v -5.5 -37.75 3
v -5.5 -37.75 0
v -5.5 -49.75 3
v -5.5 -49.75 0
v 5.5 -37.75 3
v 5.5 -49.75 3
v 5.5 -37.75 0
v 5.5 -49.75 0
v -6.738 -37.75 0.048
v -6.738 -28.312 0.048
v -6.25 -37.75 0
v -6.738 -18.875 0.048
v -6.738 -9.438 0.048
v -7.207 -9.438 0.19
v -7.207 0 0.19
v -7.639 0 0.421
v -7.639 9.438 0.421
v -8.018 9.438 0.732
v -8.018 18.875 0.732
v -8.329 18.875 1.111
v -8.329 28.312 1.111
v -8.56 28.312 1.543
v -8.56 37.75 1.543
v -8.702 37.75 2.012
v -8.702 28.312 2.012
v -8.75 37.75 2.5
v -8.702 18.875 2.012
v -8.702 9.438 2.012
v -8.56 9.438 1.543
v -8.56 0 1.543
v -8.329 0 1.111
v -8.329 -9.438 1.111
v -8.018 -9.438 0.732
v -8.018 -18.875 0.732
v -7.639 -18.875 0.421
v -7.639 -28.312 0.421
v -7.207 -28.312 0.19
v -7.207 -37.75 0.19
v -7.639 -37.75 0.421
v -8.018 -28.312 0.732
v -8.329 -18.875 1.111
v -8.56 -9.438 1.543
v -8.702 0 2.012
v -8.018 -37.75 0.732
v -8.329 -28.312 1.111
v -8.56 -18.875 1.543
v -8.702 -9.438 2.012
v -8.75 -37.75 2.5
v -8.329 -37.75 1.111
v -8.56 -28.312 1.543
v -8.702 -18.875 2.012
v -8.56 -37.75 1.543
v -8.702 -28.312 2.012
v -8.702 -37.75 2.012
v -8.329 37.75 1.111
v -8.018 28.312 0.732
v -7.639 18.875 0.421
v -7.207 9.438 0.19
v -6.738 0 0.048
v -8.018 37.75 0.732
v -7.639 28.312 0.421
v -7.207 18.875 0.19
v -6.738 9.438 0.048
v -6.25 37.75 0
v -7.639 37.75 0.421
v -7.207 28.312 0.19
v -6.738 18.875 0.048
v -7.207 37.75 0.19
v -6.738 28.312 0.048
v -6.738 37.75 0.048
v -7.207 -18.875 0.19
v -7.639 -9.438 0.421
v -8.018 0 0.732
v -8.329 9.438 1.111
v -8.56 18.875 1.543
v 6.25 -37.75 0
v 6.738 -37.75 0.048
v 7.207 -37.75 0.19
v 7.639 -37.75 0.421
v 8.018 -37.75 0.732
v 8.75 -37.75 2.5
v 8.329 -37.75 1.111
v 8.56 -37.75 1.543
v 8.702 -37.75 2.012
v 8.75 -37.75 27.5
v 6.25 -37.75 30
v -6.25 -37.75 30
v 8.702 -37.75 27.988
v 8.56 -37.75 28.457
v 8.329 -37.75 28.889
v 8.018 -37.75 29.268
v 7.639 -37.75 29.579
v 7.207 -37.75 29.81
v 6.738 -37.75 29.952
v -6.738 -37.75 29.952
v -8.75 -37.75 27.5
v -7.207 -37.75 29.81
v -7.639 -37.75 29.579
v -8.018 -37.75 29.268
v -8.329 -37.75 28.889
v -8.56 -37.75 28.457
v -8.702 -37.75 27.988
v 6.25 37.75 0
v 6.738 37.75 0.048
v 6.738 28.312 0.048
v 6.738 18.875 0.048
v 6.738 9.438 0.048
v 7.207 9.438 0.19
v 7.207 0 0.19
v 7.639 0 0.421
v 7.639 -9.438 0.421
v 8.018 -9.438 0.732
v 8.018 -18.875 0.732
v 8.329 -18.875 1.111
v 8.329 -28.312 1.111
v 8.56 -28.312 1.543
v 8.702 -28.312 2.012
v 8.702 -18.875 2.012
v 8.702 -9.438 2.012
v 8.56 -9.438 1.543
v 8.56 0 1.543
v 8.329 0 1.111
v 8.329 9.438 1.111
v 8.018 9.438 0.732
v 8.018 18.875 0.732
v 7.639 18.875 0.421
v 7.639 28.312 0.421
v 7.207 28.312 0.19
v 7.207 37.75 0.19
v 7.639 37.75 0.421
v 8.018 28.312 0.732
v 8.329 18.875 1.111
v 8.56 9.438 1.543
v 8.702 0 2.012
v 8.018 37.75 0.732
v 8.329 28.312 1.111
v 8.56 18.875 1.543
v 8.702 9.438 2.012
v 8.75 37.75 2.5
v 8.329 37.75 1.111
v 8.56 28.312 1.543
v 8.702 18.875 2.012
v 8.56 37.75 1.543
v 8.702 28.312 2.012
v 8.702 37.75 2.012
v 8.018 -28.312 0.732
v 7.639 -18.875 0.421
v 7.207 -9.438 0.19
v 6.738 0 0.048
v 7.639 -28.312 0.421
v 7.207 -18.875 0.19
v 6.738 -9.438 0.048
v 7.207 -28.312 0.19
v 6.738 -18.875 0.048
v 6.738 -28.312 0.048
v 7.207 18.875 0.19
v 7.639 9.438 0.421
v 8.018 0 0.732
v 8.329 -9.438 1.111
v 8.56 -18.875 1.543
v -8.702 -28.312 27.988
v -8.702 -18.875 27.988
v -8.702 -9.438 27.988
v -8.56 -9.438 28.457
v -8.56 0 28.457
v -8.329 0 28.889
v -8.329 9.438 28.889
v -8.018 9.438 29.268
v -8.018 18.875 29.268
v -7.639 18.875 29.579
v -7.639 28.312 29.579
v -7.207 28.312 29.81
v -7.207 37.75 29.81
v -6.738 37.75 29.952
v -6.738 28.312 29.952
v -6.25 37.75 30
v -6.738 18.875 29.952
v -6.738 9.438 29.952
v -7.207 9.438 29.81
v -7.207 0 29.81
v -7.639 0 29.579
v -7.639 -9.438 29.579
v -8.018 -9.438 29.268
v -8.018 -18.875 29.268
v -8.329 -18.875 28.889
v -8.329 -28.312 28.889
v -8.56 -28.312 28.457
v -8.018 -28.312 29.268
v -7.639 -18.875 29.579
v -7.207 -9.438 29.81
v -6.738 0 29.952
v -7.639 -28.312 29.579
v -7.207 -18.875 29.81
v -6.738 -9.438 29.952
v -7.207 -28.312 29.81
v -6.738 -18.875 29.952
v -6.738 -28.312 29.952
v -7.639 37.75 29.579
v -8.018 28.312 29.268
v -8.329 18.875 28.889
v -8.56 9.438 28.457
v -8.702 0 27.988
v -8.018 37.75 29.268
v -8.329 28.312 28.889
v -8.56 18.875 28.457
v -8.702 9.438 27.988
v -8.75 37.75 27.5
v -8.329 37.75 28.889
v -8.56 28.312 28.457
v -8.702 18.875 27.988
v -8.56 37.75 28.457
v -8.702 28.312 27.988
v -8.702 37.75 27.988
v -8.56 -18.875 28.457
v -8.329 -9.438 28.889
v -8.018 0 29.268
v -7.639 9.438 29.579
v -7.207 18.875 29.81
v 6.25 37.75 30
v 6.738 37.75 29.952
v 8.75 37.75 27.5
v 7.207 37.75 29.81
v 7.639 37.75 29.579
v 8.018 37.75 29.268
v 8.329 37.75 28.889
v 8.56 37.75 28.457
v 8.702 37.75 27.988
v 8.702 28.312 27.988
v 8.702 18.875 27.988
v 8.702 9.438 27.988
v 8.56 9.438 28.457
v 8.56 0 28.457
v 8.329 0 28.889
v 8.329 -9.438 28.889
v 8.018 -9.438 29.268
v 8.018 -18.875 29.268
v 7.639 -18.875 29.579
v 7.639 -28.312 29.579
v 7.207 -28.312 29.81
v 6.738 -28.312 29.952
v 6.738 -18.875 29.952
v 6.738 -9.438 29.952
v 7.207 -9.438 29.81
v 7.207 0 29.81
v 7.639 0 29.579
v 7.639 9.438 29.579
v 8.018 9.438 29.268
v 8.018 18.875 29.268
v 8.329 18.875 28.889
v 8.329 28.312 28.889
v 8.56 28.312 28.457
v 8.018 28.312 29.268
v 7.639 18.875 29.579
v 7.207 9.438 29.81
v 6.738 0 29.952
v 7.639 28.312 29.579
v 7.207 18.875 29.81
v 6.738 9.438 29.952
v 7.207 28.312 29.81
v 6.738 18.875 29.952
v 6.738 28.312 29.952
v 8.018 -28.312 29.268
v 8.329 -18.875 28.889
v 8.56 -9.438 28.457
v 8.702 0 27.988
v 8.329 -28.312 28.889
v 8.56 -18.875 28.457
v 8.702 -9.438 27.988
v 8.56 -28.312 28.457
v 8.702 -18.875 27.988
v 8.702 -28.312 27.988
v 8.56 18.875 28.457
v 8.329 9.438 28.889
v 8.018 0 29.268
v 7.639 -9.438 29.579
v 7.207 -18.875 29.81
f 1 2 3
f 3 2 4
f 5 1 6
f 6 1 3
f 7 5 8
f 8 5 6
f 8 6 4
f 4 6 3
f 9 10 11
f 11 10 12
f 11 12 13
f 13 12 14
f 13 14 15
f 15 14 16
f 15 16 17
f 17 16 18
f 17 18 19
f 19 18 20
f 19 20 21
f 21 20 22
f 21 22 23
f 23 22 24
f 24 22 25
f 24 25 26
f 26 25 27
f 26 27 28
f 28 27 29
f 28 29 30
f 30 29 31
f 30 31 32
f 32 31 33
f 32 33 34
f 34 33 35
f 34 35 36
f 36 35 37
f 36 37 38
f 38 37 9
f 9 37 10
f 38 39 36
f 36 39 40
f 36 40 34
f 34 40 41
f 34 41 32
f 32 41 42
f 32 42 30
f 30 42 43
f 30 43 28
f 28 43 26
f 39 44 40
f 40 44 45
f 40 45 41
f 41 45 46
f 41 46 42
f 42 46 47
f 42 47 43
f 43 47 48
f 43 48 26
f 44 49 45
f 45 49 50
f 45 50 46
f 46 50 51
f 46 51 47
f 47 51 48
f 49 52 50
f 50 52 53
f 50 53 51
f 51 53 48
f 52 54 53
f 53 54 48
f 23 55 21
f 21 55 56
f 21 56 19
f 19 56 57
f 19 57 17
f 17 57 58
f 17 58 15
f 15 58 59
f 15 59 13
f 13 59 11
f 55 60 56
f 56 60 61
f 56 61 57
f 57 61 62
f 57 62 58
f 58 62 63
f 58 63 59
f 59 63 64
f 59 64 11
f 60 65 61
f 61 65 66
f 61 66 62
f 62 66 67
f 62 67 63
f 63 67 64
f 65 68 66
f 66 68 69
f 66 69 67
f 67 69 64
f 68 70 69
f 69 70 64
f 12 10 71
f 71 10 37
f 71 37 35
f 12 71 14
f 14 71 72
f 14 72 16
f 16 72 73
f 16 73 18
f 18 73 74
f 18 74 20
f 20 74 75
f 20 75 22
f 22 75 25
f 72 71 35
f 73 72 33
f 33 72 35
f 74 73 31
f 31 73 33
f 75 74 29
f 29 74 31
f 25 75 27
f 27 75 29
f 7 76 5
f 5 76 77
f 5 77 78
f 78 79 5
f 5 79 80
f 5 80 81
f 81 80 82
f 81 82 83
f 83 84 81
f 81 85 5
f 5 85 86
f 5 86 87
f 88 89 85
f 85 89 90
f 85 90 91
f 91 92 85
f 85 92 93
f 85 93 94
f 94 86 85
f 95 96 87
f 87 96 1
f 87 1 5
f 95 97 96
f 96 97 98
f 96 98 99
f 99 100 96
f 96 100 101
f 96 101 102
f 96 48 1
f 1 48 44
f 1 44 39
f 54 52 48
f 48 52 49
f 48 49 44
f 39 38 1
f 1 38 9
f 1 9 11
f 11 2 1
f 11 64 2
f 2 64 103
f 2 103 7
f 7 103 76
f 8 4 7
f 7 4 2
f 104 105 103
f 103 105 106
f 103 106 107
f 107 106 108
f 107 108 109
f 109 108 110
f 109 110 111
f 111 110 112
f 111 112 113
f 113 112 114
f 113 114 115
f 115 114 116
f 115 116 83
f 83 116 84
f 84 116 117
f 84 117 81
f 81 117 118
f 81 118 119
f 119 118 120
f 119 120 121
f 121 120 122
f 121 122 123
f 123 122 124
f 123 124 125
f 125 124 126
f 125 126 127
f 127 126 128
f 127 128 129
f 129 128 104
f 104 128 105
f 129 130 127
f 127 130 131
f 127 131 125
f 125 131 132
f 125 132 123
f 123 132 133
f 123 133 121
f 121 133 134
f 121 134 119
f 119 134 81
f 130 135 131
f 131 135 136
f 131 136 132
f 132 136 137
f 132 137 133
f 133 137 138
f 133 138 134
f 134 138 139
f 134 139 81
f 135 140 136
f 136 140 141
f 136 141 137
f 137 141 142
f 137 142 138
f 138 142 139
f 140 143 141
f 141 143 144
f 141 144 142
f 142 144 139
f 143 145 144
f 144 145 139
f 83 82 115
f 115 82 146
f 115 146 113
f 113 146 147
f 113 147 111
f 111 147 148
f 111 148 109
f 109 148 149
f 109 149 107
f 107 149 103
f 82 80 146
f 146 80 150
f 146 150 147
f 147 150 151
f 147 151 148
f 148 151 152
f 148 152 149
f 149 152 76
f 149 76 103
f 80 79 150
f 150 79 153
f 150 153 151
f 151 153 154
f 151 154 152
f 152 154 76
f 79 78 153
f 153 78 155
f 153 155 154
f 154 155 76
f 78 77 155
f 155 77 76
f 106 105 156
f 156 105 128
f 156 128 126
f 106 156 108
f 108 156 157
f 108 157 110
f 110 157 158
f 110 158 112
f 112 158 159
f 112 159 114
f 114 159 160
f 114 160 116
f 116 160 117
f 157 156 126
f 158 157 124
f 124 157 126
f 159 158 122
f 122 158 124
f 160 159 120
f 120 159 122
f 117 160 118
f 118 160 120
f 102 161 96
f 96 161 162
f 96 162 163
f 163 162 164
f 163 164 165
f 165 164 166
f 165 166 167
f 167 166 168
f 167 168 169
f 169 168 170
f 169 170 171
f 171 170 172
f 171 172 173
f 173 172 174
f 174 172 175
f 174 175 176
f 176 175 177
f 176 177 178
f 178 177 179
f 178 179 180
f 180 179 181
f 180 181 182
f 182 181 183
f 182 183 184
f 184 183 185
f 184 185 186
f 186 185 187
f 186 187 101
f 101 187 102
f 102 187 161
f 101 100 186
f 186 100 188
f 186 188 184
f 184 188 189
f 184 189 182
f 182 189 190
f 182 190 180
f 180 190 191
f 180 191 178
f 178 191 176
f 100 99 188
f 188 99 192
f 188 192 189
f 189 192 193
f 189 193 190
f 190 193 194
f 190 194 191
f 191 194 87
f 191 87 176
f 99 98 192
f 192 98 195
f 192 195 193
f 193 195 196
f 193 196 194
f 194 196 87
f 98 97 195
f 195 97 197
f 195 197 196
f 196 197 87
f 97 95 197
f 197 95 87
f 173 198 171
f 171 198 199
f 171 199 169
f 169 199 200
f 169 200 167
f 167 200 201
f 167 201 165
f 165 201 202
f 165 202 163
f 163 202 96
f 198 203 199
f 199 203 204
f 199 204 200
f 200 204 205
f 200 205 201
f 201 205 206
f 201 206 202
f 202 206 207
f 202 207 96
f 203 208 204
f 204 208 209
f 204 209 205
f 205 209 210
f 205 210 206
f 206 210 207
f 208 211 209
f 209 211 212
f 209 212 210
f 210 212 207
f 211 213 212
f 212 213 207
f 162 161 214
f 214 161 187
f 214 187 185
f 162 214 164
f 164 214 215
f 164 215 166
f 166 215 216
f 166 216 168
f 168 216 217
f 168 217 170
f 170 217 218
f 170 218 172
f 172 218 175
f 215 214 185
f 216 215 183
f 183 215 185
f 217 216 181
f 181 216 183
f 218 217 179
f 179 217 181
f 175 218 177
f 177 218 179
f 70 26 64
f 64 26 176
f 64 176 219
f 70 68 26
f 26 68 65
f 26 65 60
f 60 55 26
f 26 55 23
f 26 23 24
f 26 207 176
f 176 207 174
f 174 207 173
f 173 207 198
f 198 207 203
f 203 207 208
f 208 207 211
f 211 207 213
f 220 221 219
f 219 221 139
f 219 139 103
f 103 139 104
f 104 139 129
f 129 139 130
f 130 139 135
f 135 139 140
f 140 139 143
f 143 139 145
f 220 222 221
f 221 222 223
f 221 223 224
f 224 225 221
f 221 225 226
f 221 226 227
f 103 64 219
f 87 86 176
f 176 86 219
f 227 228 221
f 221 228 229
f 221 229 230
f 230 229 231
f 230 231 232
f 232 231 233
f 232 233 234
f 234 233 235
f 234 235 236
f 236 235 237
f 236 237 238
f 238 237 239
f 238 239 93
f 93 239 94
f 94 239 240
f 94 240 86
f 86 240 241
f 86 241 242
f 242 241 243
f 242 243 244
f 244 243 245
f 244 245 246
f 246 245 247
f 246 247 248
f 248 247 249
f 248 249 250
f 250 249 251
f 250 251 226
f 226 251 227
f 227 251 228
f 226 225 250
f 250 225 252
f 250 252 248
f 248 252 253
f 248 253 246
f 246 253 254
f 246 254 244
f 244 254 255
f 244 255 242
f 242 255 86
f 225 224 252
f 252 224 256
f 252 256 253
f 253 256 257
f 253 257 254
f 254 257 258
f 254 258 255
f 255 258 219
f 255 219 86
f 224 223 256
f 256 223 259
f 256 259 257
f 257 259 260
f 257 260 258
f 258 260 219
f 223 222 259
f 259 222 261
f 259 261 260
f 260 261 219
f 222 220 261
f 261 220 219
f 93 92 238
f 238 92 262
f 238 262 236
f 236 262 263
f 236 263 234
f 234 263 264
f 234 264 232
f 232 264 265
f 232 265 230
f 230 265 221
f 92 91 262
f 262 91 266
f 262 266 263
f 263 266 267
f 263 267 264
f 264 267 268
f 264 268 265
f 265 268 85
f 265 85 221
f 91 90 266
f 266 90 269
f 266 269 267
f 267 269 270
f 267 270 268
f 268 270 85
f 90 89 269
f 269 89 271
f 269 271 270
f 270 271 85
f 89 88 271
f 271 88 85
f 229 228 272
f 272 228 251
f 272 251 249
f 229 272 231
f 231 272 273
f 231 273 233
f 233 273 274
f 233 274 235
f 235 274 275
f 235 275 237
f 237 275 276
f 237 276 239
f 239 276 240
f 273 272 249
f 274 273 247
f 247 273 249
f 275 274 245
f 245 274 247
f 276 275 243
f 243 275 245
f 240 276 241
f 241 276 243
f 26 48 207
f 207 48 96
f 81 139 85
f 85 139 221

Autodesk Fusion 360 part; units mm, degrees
sketch "Sketch1" plane through (0, 0, 0) normal (0, 0, 1) x (1, 0, 0)
  line L0 (8.75, 37.75) -> (-8.75, 37.75)
  line L1 (-8.75, 37.75) -> (-8.75, -37.75)
  line L2 (-8.75, -37.75) -> (8.75, -37.75)
  line L3 (8.75, -37.75) -> (8.75, 37.75)
  line L4 (8.75, 37.75) -> (-8.75, -37.75) construction
  line L5 (-8.75, 37.75) -> (8.75, -37.75) construction
  dimension "d1" = 17.5
  dimension "d2" = 75.5
extrude "Extrude1" add sketch "Sketch1" along normal blind 30
fillet "Fillet1" radius 2.5 4 edges at (8.75, 0, 30) (-8.75, 0, 30) (8.75, 0, 0) (-8.75, 0, 0)
sketch "Sketch2" plane through (0, -37.75, 0) normal (0, -1, 0) x (1, 0, 0)
  arc A0 (-8.75, 2.5) -> (-6.25, 0) centre (-6.25, 2.5) ccw
  line L0 (-6.25, 0) -> (6.25, 0)
  arc A1 (6.25, 0) -> (8.75, 2.5) centre (6.25, 2.5) ccw
  line L1 (8.75, 2.5) -> (8.75, 27.5)
  arc A2 (8.75, 27.5) -> (6.25, 30) centre (6.25, 27.5) ccw
  line L2 (6.25, 30) -> (-6.25, 30)
  arc A3 (-6.25, 30) -> (-8.75, 27.5) centre (-6.25, 27.5) ccw
  line L3 (-8.75, 27.5) -> (-8.75, 2.5)
  line L4 (-5.5, 3) -> (5.5, 3)
  line L5 (5.5, 3) -> (5.5, 0)
  line L6 (5.5, 0) -> (-5.5, 0)
  line L7 (-5.5, 0) -> (-5.5, 3)
  dimension "d7" = 11
  dimension "d8" = 3
extrude "Extrude2" add sketch "Sketch2" along normal blind 12 contours L0 L4 L5 L6 L7
